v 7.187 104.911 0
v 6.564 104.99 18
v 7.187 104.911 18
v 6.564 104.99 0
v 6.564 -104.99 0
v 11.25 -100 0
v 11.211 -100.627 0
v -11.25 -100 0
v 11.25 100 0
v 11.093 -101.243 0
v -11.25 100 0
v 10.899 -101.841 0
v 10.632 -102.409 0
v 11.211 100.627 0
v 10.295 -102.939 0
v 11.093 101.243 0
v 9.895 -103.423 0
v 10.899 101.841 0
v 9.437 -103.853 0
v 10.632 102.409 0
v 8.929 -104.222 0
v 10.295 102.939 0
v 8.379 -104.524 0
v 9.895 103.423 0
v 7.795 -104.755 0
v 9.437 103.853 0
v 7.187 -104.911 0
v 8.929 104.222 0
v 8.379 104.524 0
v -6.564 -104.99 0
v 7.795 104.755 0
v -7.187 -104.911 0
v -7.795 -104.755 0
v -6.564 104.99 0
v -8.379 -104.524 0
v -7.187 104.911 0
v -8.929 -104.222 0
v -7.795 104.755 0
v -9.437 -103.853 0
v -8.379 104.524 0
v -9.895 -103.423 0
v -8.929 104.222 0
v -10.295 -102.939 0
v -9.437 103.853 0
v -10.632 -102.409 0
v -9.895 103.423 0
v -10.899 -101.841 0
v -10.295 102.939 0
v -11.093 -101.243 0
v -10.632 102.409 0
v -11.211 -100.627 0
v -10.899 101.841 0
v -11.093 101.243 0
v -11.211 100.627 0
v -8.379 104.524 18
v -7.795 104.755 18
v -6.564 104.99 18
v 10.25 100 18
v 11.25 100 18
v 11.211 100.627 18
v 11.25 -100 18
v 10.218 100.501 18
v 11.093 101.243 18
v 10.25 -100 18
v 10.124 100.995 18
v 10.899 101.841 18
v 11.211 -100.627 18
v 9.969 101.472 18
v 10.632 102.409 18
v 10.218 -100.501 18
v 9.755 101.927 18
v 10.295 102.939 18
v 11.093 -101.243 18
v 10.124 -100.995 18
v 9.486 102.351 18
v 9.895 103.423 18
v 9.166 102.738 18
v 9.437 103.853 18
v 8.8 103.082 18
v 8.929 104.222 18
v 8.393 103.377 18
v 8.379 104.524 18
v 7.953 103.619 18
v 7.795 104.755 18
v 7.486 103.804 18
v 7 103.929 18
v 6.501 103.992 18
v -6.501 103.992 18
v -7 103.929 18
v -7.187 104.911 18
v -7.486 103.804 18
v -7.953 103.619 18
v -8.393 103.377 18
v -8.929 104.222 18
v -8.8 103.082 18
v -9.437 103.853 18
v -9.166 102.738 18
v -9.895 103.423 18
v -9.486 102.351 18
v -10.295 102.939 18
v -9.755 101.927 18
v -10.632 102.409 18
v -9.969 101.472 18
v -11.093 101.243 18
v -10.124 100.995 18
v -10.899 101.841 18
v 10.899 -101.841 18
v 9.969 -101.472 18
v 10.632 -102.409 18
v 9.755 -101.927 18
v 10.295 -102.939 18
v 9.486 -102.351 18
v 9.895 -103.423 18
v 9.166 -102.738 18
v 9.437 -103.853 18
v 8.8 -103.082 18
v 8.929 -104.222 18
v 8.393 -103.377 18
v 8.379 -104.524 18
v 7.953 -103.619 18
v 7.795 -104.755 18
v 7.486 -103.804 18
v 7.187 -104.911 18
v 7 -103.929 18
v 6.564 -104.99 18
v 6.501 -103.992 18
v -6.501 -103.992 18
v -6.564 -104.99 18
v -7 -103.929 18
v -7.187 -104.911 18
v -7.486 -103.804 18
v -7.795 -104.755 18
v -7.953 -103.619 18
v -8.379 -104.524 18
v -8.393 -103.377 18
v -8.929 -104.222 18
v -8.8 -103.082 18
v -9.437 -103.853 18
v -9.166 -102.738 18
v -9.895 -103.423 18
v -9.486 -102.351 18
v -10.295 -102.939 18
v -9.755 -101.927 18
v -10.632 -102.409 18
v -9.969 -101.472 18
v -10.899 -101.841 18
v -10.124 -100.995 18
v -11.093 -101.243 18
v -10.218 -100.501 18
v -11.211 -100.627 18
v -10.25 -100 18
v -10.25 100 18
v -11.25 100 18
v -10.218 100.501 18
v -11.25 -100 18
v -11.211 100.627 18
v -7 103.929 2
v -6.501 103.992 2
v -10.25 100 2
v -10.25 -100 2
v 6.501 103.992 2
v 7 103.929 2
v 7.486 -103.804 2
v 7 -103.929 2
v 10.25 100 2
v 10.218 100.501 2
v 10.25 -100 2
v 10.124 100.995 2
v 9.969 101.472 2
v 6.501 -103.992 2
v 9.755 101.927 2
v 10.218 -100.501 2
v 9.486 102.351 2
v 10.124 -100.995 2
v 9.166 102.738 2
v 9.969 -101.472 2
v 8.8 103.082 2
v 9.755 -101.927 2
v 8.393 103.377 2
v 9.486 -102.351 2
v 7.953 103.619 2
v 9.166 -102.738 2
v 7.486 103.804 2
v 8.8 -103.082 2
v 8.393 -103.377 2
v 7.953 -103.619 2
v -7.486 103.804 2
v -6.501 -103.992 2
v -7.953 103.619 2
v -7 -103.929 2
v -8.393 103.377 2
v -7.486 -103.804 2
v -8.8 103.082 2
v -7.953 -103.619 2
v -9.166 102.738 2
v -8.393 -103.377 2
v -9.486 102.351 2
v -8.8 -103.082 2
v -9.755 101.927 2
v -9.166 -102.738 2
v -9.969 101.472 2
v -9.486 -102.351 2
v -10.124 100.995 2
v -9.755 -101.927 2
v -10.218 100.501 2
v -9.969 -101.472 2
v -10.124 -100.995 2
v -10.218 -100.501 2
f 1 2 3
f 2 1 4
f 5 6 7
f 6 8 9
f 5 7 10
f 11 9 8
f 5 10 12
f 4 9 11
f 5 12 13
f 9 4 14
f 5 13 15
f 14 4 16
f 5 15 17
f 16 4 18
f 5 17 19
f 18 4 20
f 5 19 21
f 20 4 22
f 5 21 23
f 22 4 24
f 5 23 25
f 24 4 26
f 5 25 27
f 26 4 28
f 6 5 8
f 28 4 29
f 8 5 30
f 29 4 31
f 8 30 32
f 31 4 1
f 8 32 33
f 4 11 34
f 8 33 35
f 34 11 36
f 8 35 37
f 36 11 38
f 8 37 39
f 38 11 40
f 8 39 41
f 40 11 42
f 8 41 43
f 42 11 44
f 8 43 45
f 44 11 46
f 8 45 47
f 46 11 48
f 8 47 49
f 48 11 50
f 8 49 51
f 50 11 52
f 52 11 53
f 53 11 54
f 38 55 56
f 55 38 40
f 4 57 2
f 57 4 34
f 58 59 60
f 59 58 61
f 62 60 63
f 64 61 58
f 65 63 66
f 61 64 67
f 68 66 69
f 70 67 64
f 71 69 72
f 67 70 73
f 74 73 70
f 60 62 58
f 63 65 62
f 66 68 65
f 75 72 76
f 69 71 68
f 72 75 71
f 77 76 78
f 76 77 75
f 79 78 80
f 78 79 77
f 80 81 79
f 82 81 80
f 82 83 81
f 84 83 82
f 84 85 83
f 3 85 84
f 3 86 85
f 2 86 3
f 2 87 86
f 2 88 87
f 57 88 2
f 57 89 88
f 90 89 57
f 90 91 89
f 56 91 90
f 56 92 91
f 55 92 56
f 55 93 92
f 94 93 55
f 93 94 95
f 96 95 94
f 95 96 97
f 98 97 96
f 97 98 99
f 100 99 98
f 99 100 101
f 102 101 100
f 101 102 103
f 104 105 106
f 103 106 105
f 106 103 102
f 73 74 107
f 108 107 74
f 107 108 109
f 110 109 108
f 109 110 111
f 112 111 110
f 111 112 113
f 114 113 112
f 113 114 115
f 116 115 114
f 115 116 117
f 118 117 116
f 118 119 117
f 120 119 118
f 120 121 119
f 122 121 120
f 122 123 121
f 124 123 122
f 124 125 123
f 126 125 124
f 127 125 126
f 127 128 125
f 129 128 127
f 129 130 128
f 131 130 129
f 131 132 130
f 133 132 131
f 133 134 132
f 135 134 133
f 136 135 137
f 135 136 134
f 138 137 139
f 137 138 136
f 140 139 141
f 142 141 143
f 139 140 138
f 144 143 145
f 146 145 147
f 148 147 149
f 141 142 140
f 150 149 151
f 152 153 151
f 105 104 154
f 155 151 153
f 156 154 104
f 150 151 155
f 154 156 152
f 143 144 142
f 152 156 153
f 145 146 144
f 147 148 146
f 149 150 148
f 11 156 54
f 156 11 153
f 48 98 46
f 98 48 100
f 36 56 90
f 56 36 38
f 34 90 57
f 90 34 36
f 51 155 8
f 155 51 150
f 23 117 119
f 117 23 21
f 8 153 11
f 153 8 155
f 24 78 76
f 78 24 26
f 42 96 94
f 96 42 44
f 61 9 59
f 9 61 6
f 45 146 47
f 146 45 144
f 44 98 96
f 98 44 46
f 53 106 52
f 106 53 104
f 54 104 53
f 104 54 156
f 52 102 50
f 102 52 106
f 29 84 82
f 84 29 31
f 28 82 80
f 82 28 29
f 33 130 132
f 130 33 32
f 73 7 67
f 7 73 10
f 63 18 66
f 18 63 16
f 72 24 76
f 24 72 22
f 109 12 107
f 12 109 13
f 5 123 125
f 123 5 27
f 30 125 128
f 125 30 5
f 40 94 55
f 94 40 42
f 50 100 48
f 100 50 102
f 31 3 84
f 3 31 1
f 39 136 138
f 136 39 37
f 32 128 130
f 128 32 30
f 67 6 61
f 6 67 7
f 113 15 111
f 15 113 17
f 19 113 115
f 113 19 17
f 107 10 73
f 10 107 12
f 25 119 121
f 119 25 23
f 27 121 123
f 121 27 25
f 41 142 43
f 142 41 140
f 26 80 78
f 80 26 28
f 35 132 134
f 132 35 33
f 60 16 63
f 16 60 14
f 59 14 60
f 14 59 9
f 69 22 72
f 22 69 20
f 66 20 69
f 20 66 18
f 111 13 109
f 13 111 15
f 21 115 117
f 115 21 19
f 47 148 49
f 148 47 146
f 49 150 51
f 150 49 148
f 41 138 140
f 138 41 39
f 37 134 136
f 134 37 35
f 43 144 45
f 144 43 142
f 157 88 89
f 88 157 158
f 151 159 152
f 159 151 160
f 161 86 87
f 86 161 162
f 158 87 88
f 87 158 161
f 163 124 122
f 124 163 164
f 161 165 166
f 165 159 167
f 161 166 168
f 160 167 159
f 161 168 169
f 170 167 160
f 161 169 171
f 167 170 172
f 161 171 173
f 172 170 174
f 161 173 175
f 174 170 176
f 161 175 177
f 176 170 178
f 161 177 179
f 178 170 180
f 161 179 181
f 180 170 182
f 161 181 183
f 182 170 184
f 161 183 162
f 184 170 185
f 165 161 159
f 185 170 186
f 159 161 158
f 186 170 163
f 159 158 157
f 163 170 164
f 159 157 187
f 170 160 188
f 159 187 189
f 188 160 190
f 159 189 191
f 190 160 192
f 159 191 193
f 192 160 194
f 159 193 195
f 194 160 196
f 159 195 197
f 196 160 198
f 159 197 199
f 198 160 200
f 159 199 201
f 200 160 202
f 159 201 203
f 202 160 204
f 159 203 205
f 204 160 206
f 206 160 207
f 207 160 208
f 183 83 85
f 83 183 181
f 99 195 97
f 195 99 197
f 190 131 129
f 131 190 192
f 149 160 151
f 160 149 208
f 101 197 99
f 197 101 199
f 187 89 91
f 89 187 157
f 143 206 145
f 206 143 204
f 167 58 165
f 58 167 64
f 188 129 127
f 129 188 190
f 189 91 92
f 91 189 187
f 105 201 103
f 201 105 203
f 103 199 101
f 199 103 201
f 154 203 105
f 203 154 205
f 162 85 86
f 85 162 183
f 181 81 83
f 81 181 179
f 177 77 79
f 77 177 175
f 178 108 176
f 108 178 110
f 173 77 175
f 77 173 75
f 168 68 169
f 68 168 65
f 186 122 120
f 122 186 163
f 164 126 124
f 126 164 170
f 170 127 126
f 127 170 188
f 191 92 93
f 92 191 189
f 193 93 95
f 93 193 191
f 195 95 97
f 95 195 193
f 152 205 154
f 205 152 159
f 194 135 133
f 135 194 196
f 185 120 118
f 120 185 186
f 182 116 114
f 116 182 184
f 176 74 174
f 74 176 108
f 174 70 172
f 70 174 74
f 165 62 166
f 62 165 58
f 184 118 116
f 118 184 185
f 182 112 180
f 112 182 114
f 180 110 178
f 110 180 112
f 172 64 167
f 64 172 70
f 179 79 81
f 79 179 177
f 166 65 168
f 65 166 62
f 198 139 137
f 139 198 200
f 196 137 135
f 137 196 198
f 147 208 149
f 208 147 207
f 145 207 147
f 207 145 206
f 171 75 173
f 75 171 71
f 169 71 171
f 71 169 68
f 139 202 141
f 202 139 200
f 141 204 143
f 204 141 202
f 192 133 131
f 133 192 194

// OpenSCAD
$fn = 50;


difference() {
	union() {
		hull() {
			translate(v = [-6.2500000000, 100.0000000000, 0]) {
				cylinder(h = 18, r = 5);
			}
			translate(v = [6.2500000000, 100.0000000000, 0]) {
				cylinder(h = 18, r = 5);
			}
			translate(v = [-6.2500000000, -100.0000000000, 0]) {
				cylinder(h = 18, r = 5);
			}
			translate(v = [6.2500000000, -100.0000000000, 0]) {
				cylinder(h = 18, r = 5);
			}
		}
	}
	union() {
		translate(v = [0, 0, 2]) {
			hull() {
				translate(v = [-6.2500000000, 100.0000000000, 0]) {
					cylinder(h = 16, r = 4);
				}
				translate(v = [6.2500000000, 100.0000000000, 0]) {
					cylinder(h = 16, r = 4);
				}
				translate(v = [-6.2500000000, -100.0000000000, 0]) {
					cylinder(h = 16, r = 4);
				}
				translate(v = [6.2500000000, -100.0000000000, 0]) {
					cylinder(h = 16, r = 4);
				}
			}
		}
	}
}
